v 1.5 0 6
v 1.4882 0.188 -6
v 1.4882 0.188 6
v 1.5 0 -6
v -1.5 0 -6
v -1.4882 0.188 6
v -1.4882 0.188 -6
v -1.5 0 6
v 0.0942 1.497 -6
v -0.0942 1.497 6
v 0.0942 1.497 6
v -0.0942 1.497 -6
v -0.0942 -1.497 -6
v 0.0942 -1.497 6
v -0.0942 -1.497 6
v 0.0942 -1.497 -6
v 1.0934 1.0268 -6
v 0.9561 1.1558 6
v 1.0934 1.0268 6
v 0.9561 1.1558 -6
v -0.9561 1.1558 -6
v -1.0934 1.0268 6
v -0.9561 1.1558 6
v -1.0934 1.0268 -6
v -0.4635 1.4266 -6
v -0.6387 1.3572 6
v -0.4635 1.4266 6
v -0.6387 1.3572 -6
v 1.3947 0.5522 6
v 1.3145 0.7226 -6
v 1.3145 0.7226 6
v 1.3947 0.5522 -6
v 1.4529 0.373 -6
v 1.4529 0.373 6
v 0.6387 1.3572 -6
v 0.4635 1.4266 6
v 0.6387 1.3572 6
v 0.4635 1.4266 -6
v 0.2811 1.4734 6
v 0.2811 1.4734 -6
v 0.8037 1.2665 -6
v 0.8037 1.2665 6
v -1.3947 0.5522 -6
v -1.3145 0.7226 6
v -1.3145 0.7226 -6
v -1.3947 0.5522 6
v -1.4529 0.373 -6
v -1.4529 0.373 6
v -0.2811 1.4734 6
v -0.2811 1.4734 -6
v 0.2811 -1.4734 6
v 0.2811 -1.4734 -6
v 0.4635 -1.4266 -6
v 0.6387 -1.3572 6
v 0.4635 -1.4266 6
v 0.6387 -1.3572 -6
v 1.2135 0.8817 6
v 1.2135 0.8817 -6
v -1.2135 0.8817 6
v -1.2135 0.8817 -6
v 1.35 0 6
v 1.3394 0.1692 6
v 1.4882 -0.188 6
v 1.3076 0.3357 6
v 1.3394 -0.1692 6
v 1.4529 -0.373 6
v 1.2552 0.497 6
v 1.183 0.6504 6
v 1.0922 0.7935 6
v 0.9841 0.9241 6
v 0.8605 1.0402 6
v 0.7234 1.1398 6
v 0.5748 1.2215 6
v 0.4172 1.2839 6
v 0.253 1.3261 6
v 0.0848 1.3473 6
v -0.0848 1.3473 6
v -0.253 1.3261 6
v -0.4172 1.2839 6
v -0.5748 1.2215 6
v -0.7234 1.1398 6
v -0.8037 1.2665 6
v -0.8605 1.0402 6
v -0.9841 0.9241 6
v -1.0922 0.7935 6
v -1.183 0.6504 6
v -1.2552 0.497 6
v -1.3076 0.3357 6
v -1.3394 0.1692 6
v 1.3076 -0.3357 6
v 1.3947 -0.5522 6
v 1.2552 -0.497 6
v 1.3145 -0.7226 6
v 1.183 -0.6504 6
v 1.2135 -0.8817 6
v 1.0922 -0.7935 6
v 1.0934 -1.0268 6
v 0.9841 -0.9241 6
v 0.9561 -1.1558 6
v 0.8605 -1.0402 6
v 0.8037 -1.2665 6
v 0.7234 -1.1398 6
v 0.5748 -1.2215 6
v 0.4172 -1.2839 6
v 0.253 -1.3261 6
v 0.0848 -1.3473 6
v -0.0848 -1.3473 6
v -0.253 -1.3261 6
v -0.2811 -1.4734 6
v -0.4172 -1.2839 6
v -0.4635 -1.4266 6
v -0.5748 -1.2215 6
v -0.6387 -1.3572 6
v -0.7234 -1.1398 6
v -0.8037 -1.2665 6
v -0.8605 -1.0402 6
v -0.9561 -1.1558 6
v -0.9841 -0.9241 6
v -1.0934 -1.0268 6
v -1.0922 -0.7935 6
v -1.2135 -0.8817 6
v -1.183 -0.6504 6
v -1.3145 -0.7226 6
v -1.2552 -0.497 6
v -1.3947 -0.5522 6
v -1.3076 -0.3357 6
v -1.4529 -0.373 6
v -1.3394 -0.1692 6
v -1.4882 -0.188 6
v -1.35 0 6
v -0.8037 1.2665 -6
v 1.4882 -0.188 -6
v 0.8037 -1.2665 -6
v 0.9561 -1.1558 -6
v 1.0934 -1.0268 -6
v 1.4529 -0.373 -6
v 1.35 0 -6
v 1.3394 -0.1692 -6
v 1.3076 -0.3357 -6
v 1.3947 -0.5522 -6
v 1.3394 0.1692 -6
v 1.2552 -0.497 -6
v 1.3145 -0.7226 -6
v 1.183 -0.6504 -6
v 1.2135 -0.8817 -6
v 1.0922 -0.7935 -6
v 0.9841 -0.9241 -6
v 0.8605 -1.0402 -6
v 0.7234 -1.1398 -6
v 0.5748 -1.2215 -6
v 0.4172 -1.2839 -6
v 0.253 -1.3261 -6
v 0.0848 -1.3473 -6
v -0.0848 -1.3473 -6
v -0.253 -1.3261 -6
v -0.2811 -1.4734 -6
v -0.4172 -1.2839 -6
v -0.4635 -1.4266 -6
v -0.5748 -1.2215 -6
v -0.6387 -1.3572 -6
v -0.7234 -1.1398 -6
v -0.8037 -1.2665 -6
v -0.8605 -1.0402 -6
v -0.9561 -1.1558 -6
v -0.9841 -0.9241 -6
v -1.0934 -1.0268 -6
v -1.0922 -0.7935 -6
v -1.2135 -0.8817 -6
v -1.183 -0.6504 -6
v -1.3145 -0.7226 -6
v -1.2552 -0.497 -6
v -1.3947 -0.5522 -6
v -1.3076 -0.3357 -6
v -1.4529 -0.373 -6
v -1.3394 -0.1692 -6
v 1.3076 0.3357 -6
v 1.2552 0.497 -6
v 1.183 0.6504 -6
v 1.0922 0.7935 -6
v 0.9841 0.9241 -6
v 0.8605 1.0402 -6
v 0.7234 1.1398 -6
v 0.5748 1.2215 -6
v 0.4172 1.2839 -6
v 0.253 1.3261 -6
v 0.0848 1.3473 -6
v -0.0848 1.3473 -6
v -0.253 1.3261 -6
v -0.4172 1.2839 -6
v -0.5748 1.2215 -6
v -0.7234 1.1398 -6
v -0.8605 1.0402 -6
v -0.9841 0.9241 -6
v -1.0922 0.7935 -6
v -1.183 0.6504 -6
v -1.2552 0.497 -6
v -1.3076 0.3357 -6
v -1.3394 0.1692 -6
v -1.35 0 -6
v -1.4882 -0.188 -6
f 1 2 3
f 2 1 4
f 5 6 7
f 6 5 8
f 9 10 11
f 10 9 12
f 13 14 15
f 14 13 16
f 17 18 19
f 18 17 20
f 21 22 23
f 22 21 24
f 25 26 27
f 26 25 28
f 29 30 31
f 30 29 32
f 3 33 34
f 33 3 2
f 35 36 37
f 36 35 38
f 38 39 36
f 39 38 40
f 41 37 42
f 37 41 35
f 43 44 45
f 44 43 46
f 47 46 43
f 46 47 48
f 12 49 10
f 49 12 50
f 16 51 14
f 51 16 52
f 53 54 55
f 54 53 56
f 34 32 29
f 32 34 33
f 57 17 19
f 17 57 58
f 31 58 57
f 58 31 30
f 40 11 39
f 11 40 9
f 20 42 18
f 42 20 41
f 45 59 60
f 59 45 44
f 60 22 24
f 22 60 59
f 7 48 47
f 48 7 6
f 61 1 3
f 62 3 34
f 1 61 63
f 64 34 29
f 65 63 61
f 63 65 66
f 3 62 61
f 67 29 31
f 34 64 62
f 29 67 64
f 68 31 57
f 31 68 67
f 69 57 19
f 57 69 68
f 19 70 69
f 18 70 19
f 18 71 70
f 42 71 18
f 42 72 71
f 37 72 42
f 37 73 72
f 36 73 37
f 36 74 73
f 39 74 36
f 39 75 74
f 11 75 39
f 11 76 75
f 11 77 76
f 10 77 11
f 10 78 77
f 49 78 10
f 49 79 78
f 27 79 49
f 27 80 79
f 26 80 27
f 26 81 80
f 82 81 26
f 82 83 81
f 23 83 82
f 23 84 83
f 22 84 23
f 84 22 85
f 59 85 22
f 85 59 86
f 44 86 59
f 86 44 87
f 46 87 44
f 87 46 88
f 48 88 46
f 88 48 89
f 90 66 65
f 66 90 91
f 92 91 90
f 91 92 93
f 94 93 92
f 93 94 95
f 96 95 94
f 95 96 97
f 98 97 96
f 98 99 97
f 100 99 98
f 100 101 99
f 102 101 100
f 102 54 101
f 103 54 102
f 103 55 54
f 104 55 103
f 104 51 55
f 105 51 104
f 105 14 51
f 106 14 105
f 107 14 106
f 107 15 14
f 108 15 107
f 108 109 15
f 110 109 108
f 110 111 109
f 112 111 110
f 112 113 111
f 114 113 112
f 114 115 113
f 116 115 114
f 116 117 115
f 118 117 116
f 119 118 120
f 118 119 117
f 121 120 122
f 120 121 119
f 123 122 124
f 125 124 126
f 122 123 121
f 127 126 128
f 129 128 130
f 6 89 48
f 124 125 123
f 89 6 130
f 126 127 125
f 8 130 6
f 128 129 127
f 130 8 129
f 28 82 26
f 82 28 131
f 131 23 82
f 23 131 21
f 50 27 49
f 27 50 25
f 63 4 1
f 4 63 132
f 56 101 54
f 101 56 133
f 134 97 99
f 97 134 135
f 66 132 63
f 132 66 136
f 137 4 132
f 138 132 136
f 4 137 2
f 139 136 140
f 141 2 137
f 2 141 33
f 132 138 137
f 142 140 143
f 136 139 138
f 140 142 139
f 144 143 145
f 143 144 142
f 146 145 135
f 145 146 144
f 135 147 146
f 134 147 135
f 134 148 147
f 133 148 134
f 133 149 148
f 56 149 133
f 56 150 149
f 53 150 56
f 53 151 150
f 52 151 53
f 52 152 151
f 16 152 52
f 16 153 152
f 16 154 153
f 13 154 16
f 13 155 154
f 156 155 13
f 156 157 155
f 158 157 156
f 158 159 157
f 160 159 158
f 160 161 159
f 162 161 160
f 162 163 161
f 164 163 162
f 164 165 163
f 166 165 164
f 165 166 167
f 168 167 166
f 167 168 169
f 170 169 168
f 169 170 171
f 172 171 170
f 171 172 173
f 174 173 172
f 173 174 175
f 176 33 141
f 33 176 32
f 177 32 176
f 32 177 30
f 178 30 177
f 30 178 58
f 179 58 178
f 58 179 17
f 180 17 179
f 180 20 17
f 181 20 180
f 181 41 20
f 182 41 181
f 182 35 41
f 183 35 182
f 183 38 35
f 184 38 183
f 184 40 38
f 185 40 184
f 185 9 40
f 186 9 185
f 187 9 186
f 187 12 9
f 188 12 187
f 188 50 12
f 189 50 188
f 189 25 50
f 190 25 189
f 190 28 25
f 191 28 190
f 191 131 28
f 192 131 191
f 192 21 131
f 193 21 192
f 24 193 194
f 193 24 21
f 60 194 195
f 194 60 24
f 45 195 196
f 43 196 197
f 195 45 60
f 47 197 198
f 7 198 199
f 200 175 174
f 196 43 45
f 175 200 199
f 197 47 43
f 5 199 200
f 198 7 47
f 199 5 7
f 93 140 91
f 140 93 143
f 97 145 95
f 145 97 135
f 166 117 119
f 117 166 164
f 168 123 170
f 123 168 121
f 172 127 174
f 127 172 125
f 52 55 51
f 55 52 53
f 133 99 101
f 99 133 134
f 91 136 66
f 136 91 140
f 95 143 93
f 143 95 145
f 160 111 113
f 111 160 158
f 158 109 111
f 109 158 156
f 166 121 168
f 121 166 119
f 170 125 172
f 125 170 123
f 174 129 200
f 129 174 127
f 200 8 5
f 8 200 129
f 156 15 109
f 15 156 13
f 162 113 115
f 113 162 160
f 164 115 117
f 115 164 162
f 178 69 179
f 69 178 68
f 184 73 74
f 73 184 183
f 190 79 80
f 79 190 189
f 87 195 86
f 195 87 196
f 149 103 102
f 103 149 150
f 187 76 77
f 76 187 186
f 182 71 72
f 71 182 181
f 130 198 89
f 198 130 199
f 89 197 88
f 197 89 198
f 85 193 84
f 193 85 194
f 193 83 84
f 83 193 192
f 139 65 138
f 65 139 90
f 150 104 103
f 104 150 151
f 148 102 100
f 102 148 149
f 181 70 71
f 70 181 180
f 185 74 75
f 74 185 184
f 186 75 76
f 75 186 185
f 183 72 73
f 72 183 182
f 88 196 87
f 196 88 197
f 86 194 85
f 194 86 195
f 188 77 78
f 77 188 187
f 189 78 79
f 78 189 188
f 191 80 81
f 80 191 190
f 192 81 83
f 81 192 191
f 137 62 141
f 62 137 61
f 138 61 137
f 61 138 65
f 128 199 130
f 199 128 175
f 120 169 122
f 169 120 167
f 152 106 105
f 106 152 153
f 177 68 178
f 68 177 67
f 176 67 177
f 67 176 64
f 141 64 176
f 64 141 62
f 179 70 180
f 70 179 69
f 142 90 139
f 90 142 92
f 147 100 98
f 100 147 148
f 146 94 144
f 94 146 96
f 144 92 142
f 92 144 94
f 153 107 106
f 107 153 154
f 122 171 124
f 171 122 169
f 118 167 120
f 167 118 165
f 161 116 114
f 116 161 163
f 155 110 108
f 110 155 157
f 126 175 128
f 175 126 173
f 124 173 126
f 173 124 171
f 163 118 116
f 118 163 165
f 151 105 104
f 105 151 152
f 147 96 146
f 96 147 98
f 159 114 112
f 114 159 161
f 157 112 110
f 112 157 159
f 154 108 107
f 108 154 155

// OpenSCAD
$fn = 50;


difference() {
	union() {
		translate(v = [0, 0, -6.0000000000]) {
			cylinder(h = 12, r = 1.5000000000);
		}
	}
	union() {
		translate(v = [0, 0, -100.0000000000]) {
			cylinder(h = 200, r = 1.3500000000);
		}
	}
}
